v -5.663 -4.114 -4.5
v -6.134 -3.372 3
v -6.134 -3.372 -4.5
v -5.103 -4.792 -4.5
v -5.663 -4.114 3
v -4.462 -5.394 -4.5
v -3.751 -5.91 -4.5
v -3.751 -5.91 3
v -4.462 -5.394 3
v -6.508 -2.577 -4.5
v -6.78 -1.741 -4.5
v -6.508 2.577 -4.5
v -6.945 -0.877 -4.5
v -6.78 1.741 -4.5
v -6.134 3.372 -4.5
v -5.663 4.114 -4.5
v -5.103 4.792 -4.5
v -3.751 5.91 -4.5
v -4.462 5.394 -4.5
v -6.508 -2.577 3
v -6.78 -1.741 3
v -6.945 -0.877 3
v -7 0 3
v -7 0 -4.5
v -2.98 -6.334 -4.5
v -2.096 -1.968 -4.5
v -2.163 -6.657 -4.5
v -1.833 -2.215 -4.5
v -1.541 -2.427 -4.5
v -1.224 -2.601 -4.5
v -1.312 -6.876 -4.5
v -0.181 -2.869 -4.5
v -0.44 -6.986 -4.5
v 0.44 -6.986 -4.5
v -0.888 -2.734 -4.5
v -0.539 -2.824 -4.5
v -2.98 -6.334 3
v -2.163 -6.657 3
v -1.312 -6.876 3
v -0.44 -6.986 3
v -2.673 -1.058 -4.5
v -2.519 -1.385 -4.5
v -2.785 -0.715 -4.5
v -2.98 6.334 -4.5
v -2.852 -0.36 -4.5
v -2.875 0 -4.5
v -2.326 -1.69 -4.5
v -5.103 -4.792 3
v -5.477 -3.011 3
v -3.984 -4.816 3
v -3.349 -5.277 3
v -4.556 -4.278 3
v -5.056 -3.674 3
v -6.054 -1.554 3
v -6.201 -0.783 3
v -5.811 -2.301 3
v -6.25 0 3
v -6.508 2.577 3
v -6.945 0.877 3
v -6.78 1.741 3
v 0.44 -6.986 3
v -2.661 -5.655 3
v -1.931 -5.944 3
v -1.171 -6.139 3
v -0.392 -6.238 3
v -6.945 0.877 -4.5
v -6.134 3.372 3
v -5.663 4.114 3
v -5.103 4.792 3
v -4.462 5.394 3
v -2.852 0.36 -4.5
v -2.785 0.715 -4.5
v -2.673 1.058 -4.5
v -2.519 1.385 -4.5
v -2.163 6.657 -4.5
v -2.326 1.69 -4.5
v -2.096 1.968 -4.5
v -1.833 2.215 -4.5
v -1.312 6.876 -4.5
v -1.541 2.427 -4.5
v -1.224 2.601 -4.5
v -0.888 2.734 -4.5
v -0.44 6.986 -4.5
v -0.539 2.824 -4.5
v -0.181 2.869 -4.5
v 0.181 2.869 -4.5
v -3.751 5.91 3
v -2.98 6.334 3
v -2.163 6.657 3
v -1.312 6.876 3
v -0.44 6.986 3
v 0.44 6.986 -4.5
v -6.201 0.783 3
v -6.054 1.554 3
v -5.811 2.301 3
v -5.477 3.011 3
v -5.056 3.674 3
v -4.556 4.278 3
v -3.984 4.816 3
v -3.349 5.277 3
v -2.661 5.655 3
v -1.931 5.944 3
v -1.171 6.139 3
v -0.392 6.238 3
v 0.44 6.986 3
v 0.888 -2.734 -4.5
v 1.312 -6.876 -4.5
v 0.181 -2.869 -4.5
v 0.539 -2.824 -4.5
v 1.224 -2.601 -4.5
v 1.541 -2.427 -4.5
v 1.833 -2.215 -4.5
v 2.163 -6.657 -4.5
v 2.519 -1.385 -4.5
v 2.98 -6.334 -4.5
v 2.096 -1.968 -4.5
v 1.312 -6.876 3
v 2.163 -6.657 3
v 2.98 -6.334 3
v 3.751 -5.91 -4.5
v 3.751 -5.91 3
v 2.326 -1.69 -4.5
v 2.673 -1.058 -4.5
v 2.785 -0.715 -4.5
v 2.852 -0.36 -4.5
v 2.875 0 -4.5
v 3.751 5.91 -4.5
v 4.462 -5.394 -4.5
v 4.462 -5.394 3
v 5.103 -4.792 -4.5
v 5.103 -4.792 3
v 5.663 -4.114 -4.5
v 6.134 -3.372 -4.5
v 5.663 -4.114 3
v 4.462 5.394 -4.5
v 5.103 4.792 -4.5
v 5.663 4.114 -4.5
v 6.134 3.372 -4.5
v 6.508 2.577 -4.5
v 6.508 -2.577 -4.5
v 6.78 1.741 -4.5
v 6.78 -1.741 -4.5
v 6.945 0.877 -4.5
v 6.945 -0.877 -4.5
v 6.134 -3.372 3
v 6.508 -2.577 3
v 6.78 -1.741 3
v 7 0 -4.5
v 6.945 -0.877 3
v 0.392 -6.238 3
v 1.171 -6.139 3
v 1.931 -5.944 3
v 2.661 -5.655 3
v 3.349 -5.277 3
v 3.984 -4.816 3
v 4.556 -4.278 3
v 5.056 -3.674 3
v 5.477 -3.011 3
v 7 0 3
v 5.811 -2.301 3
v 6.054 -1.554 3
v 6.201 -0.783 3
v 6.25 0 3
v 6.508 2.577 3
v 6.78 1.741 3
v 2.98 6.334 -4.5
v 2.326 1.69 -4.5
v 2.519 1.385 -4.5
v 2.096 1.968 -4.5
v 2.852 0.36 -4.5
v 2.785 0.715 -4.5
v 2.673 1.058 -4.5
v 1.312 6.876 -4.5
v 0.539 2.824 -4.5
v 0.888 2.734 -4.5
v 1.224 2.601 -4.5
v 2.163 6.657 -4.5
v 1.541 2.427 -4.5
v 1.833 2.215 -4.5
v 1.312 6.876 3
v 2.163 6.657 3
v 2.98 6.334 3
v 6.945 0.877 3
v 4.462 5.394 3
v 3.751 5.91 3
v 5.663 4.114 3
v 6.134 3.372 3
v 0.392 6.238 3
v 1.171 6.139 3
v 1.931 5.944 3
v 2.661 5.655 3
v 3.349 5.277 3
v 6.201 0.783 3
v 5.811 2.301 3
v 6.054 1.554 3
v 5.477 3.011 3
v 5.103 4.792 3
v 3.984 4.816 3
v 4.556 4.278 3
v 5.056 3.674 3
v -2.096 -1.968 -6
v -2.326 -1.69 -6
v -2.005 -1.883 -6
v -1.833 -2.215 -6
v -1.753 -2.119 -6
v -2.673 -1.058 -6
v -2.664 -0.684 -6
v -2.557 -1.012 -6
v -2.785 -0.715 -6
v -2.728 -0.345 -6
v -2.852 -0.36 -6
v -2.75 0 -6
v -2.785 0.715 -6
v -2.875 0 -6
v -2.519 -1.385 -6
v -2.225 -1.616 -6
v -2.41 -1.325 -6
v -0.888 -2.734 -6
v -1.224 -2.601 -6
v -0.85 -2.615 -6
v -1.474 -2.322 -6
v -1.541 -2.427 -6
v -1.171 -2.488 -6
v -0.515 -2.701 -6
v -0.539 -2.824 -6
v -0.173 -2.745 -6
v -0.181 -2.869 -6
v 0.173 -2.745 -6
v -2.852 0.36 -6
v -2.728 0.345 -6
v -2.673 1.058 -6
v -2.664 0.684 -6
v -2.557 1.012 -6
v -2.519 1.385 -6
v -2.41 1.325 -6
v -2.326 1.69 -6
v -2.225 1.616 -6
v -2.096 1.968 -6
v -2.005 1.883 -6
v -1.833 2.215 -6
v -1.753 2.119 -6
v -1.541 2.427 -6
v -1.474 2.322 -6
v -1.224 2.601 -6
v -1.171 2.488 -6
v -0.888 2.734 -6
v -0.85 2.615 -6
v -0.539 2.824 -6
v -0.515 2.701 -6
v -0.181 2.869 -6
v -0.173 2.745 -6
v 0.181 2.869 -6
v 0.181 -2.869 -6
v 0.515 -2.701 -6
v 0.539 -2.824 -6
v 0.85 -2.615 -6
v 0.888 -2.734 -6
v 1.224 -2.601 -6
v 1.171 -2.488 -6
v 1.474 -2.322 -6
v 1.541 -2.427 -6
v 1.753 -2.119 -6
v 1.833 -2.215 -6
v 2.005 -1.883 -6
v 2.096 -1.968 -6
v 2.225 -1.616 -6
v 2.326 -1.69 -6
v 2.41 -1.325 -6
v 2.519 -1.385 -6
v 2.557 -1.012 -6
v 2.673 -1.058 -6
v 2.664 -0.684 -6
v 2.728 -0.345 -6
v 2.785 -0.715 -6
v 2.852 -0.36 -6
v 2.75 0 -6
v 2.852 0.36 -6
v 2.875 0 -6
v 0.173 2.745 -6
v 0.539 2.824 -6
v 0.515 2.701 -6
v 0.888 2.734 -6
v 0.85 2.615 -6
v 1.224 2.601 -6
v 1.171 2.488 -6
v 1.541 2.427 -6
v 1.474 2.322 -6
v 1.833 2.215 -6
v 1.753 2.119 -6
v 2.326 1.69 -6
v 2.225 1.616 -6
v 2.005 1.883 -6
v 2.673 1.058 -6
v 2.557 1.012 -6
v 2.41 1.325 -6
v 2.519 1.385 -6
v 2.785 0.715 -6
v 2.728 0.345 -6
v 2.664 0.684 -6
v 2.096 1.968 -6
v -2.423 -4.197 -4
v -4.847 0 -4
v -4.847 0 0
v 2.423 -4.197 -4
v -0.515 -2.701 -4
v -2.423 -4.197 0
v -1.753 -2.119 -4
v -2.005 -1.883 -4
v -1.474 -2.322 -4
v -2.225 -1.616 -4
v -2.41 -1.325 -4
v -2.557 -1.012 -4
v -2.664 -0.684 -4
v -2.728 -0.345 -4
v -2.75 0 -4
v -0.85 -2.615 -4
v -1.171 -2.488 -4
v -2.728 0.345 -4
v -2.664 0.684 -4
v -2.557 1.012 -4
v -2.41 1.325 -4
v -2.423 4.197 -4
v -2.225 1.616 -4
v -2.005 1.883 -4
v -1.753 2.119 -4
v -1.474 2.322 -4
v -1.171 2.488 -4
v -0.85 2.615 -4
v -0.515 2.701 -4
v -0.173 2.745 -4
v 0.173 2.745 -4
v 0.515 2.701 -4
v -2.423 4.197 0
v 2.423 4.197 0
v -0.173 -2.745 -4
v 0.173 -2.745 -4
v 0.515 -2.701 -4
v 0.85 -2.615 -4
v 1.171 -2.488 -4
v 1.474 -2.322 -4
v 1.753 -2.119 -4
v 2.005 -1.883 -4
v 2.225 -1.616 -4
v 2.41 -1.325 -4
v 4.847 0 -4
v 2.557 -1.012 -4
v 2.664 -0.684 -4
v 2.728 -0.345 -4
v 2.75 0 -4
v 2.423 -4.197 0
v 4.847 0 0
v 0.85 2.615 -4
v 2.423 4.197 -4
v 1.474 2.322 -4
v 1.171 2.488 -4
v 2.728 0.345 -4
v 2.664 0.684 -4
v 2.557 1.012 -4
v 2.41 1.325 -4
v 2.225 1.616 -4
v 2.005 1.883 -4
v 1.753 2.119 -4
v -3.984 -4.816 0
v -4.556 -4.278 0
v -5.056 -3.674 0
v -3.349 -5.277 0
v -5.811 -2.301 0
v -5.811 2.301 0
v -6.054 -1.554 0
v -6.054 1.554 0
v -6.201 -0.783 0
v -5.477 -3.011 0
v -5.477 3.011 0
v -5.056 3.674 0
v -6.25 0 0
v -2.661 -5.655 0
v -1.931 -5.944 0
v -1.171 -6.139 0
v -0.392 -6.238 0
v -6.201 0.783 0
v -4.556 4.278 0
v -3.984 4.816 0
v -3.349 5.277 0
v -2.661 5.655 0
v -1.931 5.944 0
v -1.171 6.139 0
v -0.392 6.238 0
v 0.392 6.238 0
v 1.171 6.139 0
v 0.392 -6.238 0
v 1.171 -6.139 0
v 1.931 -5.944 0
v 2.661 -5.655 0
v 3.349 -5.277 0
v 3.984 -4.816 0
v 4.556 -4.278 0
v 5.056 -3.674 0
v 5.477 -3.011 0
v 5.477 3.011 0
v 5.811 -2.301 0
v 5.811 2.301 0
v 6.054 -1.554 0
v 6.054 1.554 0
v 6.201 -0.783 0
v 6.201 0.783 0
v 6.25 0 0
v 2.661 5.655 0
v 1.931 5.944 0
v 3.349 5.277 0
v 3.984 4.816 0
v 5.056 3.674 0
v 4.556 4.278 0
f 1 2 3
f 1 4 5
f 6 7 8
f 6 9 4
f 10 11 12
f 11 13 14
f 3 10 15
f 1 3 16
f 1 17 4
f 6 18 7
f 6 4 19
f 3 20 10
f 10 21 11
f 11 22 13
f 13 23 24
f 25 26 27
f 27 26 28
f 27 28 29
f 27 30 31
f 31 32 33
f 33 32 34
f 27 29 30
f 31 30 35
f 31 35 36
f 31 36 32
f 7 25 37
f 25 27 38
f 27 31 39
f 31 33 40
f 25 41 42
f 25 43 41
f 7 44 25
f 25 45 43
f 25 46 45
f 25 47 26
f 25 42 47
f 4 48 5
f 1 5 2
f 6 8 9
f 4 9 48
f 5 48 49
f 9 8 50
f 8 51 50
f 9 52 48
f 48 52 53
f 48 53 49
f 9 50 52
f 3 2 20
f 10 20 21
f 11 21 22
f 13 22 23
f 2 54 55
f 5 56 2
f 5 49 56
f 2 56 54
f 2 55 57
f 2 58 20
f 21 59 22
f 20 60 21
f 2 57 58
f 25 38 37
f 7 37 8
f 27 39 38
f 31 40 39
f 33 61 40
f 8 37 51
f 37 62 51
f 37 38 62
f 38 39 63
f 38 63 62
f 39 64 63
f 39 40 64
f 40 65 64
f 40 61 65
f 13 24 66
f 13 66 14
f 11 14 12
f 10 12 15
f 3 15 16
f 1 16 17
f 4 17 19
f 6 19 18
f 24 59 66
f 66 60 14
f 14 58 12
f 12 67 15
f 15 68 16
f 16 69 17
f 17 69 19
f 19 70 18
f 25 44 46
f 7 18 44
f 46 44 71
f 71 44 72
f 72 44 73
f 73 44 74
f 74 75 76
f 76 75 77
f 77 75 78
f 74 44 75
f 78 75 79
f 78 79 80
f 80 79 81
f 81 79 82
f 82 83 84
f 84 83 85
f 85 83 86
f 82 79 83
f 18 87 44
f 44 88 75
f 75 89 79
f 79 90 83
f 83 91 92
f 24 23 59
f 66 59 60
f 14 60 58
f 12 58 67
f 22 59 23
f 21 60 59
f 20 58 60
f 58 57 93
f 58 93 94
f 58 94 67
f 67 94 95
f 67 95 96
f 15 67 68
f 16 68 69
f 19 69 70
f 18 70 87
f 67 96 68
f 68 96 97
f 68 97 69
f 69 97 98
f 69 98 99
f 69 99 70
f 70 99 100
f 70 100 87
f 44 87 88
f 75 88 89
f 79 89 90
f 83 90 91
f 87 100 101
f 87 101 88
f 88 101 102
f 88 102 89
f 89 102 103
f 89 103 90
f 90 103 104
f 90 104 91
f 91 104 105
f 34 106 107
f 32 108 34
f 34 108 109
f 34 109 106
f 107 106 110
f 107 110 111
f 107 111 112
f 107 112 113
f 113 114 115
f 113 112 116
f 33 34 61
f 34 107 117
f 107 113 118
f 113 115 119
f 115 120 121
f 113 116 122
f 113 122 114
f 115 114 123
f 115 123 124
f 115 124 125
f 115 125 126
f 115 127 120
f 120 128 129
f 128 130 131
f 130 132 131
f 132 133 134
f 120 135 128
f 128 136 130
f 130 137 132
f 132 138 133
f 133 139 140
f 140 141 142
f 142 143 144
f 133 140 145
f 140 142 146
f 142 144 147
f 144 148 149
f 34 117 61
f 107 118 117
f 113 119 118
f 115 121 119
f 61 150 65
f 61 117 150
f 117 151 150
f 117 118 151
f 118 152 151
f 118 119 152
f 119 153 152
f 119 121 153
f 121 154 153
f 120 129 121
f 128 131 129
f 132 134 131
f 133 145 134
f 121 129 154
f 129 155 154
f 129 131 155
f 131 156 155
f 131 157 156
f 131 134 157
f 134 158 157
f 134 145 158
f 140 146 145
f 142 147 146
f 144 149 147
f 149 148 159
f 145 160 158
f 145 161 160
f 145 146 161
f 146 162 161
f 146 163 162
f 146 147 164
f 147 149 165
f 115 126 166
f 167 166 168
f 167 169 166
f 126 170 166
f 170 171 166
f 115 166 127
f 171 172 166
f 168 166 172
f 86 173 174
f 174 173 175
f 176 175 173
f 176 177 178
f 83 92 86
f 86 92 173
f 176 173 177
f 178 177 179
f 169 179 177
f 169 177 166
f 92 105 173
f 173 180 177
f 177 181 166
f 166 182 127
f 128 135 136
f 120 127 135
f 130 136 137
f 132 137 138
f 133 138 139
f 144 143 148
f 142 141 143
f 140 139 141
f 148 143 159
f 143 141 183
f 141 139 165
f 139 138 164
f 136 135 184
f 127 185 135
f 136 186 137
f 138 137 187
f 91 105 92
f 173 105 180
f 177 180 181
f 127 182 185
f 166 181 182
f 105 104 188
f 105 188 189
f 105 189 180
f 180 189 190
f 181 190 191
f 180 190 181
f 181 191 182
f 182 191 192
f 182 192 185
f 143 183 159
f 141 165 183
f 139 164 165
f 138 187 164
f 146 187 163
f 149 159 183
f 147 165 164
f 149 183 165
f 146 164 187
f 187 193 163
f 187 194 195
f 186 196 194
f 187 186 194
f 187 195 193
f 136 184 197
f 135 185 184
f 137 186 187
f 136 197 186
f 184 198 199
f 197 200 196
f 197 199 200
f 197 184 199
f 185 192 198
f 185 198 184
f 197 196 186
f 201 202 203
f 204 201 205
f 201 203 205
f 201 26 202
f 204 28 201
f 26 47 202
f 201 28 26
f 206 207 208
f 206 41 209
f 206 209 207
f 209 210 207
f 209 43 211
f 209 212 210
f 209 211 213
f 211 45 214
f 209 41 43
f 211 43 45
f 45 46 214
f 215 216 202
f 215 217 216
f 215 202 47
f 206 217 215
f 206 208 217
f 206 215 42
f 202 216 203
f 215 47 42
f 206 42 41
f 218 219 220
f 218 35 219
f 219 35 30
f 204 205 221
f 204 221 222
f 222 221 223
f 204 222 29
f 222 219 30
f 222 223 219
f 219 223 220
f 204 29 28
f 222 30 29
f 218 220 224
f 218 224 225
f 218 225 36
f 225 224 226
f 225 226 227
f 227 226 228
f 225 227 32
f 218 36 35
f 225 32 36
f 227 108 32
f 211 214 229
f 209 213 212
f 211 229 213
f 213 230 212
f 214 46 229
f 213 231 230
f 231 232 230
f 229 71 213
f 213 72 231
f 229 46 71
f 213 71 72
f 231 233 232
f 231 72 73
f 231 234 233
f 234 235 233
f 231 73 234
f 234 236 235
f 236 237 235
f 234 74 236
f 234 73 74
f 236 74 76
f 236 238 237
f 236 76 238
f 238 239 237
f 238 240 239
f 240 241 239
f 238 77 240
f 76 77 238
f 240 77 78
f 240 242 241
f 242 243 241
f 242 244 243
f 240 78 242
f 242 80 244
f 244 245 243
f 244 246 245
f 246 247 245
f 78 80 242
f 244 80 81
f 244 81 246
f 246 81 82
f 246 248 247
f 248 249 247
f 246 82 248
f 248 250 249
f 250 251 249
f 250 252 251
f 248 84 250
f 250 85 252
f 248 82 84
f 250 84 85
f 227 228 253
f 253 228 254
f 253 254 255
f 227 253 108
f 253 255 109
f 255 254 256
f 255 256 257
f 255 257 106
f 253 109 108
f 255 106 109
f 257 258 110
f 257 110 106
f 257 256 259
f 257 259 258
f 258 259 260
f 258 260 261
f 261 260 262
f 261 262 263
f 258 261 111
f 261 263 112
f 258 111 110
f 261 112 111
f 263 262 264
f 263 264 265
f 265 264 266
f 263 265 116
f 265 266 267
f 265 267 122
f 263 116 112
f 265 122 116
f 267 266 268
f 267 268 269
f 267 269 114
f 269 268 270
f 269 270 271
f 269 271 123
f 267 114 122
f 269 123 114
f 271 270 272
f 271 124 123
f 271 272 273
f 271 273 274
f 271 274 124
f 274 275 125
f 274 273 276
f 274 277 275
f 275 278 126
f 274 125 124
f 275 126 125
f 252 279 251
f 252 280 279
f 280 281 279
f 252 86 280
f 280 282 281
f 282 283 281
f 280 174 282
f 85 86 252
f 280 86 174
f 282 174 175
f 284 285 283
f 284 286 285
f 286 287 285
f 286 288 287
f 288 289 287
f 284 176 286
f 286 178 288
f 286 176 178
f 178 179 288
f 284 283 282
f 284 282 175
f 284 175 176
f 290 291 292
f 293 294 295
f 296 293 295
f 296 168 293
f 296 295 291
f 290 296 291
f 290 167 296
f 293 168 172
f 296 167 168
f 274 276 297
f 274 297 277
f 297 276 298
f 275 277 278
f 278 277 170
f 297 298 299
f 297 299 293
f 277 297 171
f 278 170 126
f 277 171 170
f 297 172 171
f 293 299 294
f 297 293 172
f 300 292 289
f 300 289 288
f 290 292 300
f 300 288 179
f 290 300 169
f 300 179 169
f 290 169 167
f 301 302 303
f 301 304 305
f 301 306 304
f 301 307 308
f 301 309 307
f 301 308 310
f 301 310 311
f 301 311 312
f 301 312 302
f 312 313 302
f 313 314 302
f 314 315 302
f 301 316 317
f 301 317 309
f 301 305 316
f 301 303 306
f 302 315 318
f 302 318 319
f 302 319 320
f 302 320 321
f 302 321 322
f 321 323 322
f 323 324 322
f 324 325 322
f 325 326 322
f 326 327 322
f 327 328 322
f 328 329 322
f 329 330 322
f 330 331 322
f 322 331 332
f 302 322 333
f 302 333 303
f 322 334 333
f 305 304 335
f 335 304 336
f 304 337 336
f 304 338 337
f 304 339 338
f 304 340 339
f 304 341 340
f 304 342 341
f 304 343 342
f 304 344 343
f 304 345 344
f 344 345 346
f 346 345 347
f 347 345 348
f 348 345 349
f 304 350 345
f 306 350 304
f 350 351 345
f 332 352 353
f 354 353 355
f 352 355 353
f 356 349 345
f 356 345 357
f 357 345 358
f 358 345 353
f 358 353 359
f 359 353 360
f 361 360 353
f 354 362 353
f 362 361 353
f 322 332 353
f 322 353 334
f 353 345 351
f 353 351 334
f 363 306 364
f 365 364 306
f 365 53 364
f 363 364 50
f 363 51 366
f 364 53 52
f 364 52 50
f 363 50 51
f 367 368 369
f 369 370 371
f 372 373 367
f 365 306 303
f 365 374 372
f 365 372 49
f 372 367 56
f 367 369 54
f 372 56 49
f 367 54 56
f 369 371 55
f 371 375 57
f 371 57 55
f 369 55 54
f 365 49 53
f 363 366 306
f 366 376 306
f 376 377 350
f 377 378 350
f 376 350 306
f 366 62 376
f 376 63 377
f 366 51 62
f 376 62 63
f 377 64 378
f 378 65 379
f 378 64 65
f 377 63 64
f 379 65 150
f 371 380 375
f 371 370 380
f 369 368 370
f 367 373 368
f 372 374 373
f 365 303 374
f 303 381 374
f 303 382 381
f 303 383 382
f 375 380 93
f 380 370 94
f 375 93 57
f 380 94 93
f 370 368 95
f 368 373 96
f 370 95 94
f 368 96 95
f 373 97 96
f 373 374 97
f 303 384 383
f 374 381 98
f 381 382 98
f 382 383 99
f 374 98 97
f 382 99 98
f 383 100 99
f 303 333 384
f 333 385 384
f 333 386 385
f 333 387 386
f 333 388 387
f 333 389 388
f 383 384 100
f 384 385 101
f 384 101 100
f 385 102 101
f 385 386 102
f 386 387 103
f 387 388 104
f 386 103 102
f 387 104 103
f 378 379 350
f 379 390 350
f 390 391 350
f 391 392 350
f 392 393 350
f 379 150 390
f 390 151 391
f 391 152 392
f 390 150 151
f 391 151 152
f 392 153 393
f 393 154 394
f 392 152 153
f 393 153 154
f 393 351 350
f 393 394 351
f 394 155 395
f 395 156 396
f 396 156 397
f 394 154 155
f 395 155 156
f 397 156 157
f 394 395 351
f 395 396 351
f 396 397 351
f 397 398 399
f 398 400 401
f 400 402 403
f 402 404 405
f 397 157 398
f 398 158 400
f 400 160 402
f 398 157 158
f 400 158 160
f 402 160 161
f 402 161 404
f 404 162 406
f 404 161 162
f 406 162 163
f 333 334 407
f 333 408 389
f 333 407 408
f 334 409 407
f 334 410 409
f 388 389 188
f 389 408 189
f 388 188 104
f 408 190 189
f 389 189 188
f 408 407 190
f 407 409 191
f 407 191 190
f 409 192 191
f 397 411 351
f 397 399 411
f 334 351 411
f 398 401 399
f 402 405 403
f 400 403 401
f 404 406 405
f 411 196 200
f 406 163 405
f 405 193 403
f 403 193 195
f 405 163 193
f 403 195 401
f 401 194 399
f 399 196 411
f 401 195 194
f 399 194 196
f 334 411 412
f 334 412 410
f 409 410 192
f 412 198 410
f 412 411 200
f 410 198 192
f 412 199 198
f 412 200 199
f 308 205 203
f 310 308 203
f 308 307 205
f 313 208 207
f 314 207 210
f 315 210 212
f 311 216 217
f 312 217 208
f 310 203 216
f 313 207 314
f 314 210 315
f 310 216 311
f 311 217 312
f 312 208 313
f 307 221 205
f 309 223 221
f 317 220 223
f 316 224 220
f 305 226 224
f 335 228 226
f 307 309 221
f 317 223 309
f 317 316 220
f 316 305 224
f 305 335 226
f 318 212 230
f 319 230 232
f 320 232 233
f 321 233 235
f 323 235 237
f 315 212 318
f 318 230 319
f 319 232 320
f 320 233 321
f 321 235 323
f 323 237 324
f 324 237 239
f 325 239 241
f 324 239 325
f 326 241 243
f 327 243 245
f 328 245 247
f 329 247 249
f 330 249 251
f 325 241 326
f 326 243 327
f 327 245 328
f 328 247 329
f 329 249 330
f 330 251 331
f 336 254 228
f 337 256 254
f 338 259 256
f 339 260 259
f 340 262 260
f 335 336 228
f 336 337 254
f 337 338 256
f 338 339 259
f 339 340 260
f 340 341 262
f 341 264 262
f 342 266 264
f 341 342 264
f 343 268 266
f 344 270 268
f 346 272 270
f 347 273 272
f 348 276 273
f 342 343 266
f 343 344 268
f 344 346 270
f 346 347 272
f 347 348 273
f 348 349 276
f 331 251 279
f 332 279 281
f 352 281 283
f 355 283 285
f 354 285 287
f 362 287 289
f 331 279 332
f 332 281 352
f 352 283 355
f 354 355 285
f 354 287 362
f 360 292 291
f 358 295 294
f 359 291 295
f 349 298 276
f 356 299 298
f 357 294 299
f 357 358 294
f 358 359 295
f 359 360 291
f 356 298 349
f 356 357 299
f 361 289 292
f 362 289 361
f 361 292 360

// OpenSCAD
$fn = 50;


difference() {
	union() {
		translate(v = [0, 0, -4.5000000000]) {
			cylinder(h = 7.5000000000, r = 7.0000000000);
		}
		#translate(v = [0, 0, -6.0000000000]) {
			cylinder(h = 6, r = 2.8750000000);
		}
	}
	union() {
		translate(v = [0, 0, 0]) {
			rotate(a = [0, 0, 0]) {
				difference() {
					union() {
						translate(v = [0, 0, -4]) {
							linear_extrude(height = 4) {
								polygon(points = [[4.8468000000, 0.0000000000], [2.4234000000, 4.1974519271], [-2.4234000000, 4.1974519271], [-4.8468000000, 0.0000000000], [-2.4234000000, -4.1974519271], [2.4234000000, -4.1974519271]]);
							}
						}
					}
					union();
				}
			}
		}
		#cylinder(h = 3, r = 6.2500000000);
		#translate(v = [0, 0, -100.0000000000]) {
			cylinder(h = 200, r = 2.7500000000);
		}
	}
}
